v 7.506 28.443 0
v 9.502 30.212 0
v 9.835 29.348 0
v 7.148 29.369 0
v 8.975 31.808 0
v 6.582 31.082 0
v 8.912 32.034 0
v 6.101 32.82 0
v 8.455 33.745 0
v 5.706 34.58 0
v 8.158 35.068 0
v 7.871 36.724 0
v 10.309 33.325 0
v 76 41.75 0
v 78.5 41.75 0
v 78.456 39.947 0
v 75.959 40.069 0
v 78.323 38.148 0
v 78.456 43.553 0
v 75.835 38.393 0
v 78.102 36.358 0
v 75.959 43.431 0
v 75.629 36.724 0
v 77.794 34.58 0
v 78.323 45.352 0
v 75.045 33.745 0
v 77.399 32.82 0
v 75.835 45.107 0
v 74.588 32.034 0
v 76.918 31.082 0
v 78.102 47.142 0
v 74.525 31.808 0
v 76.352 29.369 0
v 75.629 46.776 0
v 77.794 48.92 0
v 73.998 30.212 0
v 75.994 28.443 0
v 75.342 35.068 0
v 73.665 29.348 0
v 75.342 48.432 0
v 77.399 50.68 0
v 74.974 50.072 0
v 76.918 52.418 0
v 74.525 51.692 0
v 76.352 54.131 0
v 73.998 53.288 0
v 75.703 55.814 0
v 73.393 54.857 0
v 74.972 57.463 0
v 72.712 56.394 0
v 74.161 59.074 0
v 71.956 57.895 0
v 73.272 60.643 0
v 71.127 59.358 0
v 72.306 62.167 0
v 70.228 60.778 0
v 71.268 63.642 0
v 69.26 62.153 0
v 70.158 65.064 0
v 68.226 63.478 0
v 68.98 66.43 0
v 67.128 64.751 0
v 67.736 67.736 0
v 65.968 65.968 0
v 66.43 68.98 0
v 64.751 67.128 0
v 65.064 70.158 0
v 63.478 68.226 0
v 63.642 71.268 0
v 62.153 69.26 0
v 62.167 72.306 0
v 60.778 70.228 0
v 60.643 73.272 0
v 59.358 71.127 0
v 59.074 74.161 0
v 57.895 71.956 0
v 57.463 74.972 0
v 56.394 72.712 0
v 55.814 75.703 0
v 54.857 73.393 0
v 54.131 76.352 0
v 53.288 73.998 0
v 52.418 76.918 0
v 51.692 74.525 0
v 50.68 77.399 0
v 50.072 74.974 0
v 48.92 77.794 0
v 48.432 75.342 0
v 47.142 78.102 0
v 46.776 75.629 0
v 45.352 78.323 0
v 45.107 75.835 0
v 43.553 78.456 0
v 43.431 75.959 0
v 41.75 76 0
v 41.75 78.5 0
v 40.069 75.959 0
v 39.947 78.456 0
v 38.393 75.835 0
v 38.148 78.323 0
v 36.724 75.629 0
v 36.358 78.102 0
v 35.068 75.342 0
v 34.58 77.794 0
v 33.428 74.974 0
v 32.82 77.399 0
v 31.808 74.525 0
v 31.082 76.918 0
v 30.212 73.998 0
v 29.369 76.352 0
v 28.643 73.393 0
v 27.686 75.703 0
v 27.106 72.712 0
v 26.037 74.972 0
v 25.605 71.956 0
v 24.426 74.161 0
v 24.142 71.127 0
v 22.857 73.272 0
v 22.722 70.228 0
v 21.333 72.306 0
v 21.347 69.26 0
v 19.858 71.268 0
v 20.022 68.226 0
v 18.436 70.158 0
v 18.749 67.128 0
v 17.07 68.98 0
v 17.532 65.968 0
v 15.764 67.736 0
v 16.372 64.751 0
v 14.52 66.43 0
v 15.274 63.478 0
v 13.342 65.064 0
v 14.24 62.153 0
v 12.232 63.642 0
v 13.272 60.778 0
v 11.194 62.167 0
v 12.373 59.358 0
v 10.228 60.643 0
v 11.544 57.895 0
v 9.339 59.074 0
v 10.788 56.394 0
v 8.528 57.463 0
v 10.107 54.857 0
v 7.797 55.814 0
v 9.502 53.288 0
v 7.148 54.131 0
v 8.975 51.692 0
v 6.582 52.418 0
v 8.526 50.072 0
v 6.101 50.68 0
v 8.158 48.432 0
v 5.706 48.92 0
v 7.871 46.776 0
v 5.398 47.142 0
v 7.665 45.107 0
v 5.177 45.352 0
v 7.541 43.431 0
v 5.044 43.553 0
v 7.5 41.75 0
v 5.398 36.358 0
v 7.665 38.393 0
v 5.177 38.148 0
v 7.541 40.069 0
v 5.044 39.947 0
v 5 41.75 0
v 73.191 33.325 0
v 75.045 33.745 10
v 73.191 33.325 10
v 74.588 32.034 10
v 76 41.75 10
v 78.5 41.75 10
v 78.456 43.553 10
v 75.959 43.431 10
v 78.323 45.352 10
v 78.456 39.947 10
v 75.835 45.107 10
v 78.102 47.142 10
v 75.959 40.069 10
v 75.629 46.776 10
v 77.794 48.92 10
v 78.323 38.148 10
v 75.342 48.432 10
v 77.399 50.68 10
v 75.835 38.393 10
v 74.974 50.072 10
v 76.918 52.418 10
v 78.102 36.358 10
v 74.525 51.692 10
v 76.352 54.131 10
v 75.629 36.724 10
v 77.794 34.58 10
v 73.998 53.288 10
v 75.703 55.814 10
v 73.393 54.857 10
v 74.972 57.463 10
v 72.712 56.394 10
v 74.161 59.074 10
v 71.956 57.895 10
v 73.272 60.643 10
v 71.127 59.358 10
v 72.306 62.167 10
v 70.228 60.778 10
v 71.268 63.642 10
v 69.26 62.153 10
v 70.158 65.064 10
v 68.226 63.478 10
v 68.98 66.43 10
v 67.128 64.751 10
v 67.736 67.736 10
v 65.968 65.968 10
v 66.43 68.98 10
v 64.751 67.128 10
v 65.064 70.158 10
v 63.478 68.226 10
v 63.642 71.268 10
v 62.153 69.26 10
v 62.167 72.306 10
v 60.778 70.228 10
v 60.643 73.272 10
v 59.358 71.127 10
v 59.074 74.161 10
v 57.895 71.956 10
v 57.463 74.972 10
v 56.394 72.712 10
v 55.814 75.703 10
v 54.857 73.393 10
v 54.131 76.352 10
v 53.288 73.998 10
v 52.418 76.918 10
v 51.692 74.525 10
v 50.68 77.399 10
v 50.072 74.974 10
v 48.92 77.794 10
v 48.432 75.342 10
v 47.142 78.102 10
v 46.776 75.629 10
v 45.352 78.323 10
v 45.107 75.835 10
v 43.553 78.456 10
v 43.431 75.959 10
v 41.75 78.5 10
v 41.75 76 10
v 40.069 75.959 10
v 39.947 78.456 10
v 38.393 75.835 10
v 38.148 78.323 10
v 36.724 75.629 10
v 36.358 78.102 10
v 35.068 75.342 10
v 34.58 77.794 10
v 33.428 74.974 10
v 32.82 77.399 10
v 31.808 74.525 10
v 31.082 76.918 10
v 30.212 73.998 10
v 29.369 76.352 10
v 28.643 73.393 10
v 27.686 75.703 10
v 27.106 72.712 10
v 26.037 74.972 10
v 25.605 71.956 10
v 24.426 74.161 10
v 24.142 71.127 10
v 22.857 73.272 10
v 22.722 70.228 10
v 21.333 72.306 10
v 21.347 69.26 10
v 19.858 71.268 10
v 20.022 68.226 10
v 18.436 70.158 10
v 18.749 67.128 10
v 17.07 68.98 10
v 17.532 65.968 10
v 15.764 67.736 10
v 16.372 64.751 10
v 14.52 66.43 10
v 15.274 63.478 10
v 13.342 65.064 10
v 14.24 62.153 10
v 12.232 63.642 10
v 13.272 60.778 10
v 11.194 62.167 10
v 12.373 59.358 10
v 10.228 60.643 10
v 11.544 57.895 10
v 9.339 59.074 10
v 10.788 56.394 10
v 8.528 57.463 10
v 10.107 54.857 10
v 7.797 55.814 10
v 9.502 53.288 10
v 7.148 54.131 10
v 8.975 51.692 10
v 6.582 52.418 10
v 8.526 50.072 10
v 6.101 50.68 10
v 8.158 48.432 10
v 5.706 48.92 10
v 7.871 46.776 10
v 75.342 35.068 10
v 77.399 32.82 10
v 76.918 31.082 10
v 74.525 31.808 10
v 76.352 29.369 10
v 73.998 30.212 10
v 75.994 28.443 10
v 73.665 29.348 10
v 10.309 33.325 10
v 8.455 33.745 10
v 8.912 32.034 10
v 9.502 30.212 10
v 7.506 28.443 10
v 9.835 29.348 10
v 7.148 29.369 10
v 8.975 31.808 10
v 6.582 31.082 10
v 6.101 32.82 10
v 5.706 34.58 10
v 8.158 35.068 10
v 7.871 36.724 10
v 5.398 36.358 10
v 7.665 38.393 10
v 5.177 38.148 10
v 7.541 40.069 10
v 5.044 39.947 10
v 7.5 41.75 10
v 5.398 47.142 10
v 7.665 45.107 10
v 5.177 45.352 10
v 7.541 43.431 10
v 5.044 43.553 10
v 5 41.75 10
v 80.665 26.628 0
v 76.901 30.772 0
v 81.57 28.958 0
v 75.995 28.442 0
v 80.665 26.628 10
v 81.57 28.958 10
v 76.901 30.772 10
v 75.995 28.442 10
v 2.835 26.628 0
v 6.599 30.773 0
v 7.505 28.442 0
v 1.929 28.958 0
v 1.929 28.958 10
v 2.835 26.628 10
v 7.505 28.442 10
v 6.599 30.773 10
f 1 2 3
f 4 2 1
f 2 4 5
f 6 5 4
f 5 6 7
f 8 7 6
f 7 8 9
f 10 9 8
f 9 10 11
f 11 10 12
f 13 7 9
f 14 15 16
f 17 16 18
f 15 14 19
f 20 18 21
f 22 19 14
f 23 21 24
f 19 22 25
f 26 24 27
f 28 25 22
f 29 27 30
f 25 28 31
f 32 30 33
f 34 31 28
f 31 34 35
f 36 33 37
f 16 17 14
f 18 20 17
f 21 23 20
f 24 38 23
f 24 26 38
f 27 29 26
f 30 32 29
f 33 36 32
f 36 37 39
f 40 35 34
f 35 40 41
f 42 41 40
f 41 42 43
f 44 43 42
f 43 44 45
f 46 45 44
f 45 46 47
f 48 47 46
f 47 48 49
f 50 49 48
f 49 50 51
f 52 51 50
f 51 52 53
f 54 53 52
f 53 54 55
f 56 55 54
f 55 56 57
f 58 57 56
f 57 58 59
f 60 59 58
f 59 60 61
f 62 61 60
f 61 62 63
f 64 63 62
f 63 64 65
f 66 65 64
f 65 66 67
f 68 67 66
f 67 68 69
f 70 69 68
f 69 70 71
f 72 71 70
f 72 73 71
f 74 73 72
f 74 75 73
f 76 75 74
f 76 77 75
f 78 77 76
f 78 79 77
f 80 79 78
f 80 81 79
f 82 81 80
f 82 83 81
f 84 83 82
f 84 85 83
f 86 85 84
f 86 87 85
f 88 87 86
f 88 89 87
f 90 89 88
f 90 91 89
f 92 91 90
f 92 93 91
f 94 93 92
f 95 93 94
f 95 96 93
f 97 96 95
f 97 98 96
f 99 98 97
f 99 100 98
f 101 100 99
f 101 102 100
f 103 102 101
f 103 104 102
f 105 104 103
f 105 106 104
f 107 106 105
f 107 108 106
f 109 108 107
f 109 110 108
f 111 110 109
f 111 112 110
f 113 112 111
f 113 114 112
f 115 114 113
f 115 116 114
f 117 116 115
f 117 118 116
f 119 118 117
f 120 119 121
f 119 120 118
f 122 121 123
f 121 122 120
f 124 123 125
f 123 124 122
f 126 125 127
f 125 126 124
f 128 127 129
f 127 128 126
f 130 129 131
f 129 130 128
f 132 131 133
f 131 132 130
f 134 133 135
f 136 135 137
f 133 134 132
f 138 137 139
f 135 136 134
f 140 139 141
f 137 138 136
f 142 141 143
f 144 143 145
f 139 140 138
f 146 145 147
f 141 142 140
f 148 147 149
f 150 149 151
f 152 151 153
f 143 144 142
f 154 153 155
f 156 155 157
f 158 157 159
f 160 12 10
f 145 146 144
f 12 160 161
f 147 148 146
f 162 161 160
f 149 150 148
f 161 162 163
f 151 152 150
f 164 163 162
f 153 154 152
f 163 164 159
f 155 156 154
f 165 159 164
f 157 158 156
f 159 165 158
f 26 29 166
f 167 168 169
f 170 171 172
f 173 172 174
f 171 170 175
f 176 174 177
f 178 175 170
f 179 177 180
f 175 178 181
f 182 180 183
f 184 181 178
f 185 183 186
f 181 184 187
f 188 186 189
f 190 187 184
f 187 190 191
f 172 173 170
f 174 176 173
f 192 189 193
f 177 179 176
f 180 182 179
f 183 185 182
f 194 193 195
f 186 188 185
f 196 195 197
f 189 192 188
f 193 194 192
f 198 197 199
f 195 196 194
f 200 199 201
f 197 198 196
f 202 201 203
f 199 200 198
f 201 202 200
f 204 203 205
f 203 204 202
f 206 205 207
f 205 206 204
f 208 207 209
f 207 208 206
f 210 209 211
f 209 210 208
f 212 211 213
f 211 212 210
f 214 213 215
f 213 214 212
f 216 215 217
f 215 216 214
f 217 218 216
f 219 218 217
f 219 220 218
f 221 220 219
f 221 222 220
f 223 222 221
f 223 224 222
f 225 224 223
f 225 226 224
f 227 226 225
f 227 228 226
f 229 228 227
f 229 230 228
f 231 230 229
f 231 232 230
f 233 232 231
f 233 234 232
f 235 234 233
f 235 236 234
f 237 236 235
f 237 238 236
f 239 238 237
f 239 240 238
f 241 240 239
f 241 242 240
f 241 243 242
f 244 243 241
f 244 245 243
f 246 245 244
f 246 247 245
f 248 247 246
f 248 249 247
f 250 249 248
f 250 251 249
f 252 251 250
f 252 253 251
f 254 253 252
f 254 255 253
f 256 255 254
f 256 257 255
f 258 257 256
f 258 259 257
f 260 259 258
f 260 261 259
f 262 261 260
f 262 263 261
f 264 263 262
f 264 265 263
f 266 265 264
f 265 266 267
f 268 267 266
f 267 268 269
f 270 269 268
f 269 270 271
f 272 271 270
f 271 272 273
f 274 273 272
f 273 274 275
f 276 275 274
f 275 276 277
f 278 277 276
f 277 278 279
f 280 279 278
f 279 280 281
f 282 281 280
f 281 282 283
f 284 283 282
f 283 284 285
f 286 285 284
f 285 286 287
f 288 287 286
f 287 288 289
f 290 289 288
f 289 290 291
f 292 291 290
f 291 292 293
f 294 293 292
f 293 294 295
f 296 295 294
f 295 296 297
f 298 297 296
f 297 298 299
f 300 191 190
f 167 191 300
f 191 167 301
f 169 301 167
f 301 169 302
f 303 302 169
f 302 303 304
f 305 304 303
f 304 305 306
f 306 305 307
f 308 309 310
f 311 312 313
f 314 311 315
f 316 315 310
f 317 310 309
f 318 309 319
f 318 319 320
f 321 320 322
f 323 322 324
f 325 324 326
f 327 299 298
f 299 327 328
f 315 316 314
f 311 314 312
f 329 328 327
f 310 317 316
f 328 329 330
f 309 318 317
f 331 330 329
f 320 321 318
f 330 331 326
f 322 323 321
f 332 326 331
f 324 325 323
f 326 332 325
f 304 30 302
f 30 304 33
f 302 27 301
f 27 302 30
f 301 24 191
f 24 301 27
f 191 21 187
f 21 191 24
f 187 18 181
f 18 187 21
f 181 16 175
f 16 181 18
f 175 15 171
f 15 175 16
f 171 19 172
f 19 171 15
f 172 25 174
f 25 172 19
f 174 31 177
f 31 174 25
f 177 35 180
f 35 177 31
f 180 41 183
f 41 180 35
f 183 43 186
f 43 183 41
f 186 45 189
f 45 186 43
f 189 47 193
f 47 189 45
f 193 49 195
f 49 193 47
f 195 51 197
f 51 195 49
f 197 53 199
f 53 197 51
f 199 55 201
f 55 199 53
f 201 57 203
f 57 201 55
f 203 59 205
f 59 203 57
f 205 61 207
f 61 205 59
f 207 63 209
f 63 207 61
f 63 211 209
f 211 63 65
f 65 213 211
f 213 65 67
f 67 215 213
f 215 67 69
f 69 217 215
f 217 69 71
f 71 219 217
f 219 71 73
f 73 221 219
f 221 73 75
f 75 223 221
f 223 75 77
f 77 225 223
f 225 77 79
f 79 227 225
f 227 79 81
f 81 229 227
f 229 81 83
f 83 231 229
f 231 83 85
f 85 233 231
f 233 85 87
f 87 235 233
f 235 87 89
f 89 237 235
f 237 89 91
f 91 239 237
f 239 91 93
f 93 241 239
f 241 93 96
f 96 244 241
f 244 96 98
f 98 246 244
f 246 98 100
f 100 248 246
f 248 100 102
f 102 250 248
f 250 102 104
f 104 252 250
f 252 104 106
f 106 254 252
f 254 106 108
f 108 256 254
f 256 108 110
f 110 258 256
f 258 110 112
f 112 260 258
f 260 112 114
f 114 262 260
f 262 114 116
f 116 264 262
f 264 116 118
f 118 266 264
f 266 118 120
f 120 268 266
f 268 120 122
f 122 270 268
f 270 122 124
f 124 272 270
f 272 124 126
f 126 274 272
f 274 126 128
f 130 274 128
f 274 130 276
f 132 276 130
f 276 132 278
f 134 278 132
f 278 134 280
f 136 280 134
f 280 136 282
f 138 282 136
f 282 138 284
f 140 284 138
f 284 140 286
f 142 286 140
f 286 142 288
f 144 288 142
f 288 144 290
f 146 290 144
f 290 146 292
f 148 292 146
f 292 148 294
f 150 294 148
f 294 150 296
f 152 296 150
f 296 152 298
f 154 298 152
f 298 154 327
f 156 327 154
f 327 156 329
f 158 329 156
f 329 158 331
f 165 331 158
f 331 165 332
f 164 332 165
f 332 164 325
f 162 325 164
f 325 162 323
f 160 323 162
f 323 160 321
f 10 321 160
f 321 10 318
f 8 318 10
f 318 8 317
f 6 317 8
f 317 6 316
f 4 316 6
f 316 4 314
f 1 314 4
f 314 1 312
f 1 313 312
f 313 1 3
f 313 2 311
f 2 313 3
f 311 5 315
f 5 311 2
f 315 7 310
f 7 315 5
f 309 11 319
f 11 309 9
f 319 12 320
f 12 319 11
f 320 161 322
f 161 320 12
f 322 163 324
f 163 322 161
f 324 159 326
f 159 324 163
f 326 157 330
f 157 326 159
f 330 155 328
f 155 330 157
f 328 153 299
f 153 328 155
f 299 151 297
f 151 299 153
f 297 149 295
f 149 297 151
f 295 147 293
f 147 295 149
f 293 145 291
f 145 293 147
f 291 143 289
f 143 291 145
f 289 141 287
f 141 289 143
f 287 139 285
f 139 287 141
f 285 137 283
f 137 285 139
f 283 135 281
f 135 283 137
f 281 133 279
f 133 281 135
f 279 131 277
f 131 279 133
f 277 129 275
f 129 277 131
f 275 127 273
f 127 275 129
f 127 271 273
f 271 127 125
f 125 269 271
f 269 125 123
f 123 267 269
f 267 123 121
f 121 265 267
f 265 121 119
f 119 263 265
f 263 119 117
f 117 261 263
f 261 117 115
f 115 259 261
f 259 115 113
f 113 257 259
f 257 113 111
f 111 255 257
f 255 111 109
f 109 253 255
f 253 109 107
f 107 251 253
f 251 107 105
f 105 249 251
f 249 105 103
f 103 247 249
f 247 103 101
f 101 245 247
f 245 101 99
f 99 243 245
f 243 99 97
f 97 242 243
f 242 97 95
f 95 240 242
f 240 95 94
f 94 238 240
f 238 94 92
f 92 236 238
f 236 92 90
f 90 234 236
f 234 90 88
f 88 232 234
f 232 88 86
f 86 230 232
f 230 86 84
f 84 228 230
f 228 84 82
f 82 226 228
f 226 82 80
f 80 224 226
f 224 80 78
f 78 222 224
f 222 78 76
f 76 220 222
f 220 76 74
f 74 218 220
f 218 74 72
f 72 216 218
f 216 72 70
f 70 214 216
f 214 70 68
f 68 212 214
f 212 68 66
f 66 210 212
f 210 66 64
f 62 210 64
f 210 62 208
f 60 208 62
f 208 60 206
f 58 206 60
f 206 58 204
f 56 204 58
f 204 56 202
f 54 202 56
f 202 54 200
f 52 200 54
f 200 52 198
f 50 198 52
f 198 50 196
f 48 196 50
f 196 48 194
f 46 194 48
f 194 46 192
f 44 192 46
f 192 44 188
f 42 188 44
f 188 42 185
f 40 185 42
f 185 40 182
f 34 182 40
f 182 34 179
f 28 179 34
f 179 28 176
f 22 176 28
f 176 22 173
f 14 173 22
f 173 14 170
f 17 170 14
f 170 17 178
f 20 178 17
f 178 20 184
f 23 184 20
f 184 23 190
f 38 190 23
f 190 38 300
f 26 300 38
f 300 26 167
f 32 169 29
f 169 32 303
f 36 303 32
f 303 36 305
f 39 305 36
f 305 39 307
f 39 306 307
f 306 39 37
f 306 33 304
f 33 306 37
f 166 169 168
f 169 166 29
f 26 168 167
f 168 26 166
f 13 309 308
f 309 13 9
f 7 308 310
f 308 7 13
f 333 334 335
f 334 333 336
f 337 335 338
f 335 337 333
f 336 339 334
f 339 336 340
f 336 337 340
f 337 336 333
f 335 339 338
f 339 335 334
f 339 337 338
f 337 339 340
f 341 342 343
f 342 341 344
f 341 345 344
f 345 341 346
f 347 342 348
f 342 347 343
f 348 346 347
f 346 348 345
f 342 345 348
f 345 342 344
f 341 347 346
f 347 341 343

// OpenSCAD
// Generated by scadwright. Do not hand-edit —
// edit the Python source and regenerate.

$fn = 128;

translate([41.75, 41.75, -7.6]) {
    // S2ApertureCover
    //  barrel_od         = 68.1  (input)
    //  cover_axial       = 10  (input)
    //  groove_offset_deg = 15  (input)
    //  ridge_base        = 1.8  (input)
    //  ridge_height      = 1.5  (input)
    //  z_center          = 12.6  (input)
    //  end_extension     = 4  (default)
    //  id_clearance      = 0.2  (default)
    //  tab_radial        = 5  (default)
    //  tab_thk           = 2.5  (default)
    //  wall_thk          = 2.5  (default)
    //  id                = barrel_od + 2 * id_clearance = 68.5
    //  od                = id + 2 * wall_thk = 73.5
    //  cover_z_bot       = z_center - cover_axial / 2 = 7.6
    union() {
        translate([0, 0, 7.6]) {
            linear_extrude(height=10, center=false) {
                difference() {
                    // Sector
                    //  angles = [-21.2363, 201.236]  (input)
                    //  r      = 36.75  (input)
                    intersection() {
                        circle(r=36.75);
                        polygon(points=[[0, 0], [68.509, -26.6228], [44.3141, 58.6389], [-44.3141, 58.6389], [-68.509, -26.6228]]);
                    }
                    circle(r=34.25);
                }
            }
        }
        rotate([0, 0, -15]) {
            translate([0, 0, 7.6]) {
                linear_extrude(height=10, center=false) {
                    polygon(points=[[34.26, -0.9], [34.26, 0.9], [32.55, 0]]);
                }
            }
        }
        rotate([0, 0, 195]) {
            translate([0, 0, 7.6]) {
                linear_extrude(height=10, center=false) {
                    polygon(points=[[34.26, -0.9], [34.26, 0.9], [32.55, 0]]);
                }
            }
        }
        rotate([0, 0, -21.2363]) {
            translate([0, 0, 7.6]) {
                linear_extrude(height=10, center=false) {
                    polygon(points=[[36.74, 0], [41.75, 0], [41.75, 2.5], [36.74, 2.5]]);
                }
            }
        }
        rotate([0, 0, 201.236]) {
            translate([0, 0, 7.6]) {
                linear_extrude(height=10, center=false) {
                    polygon(points=[[36.74, -2.5], [41.75, -2.5], [41.75, 0], [36.74, 0]]);
                }
            }
        }
    }
}
